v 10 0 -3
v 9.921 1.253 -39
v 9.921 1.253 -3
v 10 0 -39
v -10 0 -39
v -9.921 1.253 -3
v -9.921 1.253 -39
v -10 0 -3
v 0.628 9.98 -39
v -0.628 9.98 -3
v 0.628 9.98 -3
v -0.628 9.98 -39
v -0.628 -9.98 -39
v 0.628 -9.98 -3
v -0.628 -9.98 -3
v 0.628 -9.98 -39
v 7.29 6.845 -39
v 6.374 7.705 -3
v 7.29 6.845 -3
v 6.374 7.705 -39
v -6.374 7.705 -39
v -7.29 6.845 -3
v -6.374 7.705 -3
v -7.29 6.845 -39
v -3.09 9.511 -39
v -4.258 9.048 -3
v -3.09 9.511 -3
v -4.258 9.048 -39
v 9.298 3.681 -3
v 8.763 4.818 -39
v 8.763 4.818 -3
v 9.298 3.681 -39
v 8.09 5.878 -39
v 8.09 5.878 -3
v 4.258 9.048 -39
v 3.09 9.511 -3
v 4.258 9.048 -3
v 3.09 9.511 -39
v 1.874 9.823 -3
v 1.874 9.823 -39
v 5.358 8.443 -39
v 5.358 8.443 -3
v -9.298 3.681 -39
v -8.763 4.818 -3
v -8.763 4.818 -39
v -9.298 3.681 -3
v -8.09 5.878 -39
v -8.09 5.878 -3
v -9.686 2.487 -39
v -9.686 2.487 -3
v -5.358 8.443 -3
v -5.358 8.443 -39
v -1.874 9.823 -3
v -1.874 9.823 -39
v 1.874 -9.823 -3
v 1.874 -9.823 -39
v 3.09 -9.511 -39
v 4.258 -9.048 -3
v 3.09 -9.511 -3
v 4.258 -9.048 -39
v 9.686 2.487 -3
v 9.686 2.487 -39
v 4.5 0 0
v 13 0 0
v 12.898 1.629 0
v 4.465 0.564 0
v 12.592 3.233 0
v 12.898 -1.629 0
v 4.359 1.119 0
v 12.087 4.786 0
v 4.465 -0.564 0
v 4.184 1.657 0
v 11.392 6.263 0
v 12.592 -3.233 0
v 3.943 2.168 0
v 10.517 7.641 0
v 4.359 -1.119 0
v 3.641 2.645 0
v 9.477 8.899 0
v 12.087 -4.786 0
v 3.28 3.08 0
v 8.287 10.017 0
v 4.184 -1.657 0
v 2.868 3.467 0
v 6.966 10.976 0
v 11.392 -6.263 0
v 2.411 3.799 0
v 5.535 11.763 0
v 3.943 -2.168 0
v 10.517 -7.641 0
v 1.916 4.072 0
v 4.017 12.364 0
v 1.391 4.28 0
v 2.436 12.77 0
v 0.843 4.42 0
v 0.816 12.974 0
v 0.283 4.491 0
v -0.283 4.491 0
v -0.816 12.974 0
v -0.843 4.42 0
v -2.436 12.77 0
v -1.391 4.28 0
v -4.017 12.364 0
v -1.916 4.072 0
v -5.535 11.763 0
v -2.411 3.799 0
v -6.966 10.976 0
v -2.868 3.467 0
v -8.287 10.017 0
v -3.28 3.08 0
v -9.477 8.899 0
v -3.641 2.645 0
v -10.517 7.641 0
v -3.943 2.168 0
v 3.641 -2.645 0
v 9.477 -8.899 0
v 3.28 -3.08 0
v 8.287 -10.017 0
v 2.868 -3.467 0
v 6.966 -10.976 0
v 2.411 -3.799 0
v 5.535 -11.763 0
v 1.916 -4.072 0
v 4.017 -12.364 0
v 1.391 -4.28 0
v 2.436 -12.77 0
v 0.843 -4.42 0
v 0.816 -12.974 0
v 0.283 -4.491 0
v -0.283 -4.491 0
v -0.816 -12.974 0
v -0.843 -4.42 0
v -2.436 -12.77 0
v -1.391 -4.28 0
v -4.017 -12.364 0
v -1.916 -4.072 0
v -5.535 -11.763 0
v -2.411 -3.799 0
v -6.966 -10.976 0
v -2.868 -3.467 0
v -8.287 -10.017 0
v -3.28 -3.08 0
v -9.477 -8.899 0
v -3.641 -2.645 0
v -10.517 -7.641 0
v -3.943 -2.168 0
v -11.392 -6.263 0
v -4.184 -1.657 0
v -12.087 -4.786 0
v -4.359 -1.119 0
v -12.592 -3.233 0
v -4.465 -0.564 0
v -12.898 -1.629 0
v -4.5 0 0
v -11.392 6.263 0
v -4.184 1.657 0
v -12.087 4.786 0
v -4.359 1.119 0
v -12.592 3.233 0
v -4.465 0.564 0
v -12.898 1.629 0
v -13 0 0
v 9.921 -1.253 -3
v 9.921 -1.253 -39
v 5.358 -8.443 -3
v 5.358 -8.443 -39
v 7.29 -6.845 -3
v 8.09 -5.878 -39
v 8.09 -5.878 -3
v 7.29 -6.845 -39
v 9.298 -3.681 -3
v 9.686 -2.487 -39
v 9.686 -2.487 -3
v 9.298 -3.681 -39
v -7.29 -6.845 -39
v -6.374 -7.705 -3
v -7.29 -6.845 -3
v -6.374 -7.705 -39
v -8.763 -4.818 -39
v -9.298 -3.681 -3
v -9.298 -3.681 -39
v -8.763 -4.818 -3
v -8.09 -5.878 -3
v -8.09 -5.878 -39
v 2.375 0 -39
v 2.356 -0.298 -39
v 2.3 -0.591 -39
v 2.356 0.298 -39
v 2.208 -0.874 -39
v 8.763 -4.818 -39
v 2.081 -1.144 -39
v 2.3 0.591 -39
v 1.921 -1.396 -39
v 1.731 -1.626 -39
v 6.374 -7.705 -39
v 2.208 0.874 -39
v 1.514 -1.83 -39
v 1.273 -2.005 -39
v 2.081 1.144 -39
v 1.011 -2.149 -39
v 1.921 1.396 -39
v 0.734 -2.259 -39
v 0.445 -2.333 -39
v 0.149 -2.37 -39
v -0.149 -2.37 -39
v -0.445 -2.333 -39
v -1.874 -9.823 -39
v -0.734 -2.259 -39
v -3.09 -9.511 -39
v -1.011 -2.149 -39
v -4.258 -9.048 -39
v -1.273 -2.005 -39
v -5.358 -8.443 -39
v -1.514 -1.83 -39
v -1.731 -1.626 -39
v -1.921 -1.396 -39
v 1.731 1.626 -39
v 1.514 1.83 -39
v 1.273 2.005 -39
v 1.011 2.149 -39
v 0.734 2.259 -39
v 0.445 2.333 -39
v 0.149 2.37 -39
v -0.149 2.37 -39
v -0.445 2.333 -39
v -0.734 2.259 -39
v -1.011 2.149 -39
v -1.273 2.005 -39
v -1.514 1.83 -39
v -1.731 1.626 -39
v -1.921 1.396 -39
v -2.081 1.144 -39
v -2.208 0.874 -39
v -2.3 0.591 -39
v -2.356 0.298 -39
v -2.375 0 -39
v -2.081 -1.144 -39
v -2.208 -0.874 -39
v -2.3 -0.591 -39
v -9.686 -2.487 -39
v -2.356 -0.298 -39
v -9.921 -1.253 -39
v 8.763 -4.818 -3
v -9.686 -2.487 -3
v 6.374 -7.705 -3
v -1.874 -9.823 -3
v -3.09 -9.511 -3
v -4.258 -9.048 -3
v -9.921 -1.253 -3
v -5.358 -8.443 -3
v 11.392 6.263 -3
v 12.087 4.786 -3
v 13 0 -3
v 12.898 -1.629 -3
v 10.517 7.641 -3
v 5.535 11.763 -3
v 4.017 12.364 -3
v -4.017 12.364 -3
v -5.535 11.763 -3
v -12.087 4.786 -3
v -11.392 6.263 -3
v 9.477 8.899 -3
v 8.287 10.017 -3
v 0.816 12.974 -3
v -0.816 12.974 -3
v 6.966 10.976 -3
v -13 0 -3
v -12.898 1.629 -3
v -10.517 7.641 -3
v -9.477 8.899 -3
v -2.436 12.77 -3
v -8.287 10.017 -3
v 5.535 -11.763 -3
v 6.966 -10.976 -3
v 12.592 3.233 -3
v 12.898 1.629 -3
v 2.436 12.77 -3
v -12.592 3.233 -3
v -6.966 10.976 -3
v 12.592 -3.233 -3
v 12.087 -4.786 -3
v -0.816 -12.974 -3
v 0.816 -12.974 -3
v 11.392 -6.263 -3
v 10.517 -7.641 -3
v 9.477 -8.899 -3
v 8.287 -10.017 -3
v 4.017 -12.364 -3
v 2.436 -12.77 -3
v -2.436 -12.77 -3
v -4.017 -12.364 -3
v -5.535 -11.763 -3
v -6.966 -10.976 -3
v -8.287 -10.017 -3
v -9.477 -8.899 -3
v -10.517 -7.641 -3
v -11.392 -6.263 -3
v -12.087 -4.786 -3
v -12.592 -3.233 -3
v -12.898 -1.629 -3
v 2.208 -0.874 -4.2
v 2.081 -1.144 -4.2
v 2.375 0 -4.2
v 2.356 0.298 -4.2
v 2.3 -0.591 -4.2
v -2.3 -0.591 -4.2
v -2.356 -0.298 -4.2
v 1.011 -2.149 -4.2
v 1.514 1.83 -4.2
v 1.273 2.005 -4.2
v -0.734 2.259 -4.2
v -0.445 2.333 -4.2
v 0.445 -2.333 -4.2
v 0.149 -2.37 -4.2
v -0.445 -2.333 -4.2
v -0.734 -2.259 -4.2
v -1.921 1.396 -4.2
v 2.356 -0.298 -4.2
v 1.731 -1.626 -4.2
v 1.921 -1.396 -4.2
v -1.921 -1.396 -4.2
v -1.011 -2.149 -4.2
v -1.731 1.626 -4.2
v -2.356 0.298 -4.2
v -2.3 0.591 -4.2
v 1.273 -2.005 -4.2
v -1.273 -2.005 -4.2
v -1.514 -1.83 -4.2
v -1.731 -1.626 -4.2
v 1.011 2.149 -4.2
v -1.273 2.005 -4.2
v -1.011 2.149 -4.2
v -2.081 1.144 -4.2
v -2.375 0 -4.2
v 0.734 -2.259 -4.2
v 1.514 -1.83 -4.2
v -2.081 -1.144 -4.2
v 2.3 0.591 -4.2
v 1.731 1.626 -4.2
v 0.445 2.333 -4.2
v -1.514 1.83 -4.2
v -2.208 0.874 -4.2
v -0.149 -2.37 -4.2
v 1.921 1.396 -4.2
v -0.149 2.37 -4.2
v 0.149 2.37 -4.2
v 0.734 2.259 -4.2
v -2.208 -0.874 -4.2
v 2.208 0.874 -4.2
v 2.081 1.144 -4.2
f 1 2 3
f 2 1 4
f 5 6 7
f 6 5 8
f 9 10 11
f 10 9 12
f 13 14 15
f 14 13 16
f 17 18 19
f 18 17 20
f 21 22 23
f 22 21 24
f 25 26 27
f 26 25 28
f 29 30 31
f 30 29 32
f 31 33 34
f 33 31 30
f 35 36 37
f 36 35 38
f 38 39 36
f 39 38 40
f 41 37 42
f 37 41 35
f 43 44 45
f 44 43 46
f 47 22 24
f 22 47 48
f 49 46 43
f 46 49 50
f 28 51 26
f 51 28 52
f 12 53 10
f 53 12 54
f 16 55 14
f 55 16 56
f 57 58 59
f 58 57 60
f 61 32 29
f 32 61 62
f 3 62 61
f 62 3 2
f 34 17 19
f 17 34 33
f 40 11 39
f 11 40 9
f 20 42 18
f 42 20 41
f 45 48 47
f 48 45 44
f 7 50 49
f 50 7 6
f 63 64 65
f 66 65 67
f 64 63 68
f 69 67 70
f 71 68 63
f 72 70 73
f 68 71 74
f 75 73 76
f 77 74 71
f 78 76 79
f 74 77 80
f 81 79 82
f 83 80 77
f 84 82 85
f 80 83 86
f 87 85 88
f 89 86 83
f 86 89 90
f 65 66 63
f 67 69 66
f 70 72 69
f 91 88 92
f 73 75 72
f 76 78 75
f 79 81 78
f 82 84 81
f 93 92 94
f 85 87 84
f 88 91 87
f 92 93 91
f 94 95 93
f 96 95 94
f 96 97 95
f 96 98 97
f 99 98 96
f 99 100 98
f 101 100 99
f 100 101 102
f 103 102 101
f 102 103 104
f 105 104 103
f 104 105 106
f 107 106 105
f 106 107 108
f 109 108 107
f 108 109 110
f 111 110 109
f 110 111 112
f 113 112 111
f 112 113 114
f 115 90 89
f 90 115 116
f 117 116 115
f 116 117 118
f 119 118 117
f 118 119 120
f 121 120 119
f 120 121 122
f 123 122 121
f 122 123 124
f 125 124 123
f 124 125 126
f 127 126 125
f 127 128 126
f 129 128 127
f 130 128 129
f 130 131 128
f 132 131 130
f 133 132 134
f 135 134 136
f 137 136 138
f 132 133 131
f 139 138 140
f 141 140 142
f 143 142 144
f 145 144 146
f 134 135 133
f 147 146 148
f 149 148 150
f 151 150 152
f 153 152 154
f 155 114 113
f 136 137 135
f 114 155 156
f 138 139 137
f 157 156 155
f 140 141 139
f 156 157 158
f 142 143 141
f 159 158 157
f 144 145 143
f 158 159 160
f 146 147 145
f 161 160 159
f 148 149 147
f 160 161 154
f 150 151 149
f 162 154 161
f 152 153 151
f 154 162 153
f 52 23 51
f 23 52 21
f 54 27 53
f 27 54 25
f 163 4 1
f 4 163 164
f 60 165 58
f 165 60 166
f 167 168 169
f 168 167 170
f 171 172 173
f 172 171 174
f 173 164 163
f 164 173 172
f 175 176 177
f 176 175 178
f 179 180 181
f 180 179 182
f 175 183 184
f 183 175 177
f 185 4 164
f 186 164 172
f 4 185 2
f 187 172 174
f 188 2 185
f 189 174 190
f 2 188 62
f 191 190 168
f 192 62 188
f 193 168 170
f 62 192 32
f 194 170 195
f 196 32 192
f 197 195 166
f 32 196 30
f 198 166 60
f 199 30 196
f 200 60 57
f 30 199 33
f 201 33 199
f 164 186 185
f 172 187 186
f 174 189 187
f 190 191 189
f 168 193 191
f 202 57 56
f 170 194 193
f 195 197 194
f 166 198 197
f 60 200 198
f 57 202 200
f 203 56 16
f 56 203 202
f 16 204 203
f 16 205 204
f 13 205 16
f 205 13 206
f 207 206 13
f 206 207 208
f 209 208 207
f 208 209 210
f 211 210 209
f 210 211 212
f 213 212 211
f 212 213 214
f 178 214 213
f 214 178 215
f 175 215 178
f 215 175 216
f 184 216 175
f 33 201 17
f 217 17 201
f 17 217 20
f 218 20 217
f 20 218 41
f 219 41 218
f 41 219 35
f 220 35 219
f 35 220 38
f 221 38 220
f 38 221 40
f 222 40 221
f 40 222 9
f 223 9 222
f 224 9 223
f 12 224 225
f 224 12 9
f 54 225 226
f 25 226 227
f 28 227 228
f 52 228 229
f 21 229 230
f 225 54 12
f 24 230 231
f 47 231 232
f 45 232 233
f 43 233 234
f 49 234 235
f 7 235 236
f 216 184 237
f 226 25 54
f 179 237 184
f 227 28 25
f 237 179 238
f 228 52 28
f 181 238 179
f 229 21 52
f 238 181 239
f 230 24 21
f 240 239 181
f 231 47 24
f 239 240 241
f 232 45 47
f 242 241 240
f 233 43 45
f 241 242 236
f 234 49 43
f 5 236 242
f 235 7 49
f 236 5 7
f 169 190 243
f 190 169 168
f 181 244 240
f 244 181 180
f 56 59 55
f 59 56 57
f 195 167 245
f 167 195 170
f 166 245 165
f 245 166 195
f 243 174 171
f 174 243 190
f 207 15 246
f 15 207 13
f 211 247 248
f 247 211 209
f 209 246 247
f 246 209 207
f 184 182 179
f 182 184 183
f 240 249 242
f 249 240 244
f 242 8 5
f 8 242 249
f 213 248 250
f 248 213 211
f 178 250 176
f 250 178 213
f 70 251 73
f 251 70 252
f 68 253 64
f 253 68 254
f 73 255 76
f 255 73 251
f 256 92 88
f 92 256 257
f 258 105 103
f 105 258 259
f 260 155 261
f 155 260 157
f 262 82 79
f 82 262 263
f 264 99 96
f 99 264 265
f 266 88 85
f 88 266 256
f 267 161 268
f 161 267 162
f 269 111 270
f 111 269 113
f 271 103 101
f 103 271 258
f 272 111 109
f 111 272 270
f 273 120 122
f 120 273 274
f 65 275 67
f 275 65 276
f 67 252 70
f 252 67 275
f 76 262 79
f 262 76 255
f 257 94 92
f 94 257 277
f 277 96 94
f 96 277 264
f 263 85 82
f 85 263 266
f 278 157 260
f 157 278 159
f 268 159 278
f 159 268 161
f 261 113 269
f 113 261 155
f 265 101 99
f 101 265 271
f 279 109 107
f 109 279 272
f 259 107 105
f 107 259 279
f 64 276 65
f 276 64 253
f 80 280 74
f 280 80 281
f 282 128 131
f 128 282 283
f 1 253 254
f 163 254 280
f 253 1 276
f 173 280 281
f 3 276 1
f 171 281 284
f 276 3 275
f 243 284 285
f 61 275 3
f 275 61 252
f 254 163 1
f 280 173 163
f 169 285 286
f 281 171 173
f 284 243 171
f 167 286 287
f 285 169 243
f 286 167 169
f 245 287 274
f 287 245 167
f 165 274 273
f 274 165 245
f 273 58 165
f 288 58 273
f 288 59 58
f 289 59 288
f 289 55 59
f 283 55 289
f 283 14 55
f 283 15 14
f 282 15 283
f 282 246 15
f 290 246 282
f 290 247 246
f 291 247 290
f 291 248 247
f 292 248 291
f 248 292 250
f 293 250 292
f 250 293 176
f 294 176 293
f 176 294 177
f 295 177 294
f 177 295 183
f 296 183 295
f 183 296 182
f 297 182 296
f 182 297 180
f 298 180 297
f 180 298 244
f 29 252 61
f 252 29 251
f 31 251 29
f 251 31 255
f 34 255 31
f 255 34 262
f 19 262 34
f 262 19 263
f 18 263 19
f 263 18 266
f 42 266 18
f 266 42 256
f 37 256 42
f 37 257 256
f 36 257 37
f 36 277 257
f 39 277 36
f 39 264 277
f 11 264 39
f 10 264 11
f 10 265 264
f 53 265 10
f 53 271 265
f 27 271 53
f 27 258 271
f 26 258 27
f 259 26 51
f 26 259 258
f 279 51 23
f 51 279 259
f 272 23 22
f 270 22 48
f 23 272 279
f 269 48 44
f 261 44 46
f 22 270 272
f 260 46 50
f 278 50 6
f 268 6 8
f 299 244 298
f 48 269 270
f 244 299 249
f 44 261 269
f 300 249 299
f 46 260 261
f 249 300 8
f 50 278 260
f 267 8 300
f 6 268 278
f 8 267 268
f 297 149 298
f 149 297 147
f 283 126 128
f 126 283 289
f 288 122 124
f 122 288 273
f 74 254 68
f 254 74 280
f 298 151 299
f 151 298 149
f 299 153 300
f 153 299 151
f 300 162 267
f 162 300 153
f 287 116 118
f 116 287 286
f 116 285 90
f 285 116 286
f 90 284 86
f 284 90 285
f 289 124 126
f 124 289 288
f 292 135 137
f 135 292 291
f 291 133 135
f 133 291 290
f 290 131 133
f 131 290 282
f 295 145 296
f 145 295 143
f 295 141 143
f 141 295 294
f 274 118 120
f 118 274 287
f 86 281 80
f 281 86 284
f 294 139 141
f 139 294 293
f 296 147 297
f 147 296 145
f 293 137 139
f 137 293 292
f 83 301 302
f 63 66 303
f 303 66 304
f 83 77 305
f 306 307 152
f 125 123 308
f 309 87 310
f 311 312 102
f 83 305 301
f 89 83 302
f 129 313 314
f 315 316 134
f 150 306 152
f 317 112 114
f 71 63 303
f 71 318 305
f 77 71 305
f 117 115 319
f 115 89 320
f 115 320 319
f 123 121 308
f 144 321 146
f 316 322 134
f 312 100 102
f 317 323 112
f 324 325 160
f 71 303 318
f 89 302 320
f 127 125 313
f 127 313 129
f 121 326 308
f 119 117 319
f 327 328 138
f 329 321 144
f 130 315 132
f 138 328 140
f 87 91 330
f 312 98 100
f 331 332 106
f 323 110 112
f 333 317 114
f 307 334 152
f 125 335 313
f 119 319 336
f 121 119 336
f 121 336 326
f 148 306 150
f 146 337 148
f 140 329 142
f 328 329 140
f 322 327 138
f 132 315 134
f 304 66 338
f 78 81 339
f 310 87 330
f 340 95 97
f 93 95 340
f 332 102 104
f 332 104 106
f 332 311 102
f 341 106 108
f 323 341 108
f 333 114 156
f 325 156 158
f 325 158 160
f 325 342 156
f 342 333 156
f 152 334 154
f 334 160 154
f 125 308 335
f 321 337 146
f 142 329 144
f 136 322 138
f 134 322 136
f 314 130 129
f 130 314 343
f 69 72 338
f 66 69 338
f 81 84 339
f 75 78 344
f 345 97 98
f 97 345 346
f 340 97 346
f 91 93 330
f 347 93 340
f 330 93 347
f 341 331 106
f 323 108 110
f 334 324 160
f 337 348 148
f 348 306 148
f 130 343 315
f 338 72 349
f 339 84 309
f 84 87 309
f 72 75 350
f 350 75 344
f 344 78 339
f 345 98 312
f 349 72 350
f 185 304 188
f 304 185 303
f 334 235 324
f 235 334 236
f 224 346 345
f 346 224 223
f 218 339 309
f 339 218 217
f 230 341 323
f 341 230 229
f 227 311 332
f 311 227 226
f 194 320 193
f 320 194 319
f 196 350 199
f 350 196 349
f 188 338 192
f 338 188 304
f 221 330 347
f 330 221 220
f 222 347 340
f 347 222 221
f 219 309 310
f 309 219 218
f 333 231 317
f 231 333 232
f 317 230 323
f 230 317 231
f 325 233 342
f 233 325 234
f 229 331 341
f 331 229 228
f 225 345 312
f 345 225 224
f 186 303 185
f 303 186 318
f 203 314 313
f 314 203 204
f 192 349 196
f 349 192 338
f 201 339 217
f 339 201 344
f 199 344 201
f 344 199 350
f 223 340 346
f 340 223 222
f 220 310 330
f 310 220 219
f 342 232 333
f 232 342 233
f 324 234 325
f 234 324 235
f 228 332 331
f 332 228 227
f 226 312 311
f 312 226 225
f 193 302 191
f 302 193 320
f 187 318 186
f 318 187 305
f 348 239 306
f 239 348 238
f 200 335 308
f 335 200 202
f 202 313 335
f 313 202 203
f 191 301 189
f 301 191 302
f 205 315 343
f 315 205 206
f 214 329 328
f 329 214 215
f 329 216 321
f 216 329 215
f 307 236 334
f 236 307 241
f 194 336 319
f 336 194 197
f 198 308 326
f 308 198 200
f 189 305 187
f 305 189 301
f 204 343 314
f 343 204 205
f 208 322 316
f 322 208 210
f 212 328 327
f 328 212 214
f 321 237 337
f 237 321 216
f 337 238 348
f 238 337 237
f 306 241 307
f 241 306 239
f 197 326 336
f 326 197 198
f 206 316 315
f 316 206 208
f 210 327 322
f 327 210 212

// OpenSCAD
$fn = 50;


difference() {
	union() {
		translate(v = [0, 0, -39.0000000000]) {
			cylinder(h = 39, r = 10.0000000000);
		}
		translate(v = [0, 0, -3.0000000000]) {
			cylinder(h = 3, r = 13.0000000000);
		}
	}
	union() {
		translate(v = [0, 0, 0]) {
			rotate(a = [0, 0, 0]) {
				difference() {
					union() {
						#translate(v = [0, 0, -39.0000000000]) {
							cylinder(h = 39, r = 2.2500000000);
						}
						#translate(v = [0, 0, -4.2000000000]) {
							cylinder(h = 4.2000000000, r = 10.0000000000, r1 = 2.3750000000, r2 = 4.5000000000);
						}
						#translate(v = [0, 0, -39.0000000000]) {
							cylinder(h = 39, r = 2.3750000000);
						}
						#translate(v = [0, 0, -39.0000000000]) {
							cylinder(h = 39, r = 2.2500000000);
						}
					}
					union();
				}
			}
		}
	}
}
